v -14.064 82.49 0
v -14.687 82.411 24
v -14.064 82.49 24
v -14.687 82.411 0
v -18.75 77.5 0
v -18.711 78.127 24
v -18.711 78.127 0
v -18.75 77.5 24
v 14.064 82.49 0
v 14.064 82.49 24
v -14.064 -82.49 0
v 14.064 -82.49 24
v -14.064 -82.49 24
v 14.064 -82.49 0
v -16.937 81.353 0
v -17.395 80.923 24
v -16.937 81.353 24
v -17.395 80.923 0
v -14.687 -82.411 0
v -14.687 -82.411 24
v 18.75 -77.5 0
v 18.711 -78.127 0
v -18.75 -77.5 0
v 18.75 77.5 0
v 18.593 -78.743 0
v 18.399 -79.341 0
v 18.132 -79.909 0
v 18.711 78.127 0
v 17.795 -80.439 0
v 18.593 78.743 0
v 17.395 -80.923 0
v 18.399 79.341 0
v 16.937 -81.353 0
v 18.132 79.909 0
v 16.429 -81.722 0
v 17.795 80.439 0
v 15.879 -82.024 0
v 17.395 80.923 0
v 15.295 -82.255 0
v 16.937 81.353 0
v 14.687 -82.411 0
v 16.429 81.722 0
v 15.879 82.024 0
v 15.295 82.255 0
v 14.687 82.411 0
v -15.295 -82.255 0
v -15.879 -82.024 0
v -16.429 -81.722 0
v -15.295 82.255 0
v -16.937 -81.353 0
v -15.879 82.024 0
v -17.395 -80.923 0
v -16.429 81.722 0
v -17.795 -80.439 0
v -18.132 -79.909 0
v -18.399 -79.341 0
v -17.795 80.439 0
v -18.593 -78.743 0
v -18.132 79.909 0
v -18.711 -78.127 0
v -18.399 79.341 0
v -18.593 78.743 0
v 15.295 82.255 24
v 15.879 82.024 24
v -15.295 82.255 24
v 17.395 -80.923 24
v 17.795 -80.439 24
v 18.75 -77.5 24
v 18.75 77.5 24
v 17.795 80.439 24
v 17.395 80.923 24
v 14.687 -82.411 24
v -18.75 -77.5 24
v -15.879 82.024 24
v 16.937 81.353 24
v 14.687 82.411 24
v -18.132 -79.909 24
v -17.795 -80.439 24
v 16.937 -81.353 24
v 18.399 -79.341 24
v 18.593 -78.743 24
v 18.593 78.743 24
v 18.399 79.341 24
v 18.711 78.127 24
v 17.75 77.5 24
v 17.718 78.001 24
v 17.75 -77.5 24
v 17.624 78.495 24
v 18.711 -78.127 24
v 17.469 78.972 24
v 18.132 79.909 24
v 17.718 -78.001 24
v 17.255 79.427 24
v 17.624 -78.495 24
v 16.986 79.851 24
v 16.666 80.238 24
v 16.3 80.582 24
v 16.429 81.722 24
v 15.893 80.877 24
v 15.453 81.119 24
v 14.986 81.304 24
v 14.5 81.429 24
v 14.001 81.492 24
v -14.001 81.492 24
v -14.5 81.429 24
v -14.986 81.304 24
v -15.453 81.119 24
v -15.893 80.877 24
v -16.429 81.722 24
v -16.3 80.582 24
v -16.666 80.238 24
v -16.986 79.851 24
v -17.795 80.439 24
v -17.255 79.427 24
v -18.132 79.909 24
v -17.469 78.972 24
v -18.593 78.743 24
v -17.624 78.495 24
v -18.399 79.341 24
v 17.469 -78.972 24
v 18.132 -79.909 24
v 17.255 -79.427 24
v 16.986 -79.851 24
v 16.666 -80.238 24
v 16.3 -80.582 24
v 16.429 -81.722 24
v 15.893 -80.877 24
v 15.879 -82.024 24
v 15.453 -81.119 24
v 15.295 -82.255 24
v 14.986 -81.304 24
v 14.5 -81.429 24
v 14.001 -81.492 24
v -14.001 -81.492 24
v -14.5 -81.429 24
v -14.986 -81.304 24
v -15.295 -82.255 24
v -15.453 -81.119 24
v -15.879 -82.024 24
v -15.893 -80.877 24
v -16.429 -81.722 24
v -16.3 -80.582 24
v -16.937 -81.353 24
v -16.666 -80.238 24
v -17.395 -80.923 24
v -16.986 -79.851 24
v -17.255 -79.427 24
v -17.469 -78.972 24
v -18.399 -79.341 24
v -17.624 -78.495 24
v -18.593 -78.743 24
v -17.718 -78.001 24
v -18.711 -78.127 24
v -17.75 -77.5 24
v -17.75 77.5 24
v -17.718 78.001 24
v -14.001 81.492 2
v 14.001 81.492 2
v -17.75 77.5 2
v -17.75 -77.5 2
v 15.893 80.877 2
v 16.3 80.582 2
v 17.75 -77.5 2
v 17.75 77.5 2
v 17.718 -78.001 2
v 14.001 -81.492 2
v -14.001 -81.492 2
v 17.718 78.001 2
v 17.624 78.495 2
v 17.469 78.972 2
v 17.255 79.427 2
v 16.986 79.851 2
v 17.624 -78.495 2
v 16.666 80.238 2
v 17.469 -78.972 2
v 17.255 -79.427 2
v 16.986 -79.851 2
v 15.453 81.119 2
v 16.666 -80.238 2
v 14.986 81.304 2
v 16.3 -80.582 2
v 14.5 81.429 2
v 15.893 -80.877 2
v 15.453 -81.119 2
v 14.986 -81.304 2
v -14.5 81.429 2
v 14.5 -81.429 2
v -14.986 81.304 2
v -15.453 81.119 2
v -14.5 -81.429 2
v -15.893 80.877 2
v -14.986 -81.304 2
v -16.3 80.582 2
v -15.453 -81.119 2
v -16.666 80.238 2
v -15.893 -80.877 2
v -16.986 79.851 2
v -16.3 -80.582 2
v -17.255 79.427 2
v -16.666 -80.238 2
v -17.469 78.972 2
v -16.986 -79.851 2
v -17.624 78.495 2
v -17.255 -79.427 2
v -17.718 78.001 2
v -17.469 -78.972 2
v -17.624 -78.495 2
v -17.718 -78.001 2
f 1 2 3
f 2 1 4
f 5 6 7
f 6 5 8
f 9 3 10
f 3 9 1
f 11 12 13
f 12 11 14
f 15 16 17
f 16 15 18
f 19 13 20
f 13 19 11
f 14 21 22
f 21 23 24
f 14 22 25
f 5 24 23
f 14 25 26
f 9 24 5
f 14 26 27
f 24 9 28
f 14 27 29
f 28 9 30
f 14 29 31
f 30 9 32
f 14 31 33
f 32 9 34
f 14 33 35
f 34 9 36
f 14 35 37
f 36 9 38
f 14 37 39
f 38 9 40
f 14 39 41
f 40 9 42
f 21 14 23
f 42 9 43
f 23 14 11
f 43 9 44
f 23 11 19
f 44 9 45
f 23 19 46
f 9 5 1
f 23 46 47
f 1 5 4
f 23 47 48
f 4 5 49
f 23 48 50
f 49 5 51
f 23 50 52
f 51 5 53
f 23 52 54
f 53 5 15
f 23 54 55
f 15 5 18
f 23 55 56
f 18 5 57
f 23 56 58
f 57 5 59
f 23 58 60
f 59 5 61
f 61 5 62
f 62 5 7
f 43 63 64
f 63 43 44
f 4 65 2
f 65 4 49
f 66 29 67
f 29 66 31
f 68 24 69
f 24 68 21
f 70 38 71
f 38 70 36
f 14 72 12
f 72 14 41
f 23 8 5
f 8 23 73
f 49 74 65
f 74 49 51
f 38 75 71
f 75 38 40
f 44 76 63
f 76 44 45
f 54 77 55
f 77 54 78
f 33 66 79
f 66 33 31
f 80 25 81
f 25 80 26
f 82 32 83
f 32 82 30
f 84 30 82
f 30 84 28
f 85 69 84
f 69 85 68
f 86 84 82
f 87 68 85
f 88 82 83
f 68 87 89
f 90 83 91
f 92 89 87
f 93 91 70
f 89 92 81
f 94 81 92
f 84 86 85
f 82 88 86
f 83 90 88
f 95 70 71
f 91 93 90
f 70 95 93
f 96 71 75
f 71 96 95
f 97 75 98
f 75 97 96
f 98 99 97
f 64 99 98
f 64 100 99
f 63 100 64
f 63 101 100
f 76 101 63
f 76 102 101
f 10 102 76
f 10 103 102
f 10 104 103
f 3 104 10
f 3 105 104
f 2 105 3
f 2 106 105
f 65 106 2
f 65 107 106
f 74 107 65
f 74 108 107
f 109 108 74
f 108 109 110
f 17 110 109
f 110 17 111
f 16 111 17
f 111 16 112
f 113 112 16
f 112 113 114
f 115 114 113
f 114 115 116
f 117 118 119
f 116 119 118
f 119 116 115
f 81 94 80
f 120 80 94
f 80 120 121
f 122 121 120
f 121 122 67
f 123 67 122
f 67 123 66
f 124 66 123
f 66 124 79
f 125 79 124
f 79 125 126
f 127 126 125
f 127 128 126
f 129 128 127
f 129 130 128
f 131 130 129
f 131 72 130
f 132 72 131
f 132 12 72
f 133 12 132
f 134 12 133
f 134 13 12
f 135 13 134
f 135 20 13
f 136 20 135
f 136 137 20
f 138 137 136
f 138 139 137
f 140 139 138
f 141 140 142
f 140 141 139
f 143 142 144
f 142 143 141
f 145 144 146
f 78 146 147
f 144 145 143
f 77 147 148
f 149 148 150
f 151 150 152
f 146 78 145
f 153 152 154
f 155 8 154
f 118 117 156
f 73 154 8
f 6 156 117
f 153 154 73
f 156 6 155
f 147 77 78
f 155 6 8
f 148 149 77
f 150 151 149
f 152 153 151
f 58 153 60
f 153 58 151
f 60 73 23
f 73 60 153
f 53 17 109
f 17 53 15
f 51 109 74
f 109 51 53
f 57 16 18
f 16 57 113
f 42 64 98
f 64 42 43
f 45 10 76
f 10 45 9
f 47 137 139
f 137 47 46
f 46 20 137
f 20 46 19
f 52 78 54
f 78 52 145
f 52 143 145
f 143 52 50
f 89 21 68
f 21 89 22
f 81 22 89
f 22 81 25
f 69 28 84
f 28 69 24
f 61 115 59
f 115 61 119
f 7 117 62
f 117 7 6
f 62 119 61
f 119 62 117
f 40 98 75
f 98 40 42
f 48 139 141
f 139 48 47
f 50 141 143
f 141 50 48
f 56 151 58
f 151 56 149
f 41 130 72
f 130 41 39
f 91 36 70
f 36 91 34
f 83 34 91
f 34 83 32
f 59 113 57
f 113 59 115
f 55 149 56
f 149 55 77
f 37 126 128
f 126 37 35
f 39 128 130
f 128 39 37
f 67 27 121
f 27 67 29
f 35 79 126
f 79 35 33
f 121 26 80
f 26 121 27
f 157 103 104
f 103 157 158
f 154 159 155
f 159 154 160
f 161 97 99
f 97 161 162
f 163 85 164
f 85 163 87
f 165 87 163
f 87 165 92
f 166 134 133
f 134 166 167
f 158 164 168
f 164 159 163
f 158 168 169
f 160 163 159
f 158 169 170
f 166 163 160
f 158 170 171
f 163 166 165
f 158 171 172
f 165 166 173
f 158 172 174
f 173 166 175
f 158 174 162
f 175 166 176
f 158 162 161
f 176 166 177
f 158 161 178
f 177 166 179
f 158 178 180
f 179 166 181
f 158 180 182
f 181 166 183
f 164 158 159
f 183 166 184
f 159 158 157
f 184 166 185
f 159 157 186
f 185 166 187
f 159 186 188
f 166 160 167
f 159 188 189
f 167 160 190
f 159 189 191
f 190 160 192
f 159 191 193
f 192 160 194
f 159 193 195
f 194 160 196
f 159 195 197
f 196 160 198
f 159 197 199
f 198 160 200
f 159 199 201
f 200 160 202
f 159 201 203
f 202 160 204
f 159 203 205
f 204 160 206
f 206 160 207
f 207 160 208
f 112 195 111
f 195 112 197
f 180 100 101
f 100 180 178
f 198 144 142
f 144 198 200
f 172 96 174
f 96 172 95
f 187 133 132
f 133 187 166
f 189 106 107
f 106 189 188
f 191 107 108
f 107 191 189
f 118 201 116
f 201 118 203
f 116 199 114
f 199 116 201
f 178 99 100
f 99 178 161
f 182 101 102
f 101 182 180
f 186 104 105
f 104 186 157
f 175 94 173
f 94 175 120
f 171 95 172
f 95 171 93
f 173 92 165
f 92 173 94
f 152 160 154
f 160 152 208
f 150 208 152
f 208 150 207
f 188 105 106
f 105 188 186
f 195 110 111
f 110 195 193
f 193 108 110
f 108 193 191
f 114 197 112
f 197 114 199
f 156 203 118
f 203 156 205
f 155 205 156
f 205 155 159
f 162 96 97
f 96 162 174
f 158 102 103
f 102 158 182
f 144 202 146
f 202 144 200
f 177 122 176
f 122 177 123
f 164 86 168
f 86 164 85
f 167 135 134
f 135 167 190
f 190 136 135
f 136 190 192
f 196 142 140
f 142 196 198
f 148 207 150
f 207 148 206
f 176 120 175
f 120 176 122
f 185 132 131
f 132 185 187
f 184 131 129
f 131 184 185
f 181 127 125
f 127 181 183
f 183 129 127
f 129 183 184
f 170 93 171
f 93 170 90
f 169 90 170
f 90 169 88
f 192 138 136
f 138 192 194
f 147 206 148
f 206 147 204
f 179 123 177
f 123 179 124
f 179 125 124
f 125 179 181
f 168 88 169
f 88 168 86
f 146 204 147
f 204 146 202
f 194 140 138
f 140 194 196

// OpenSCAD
$fn = 50;


difference() {
	union() {
		hull() {
			translate(v = [-13.7500000000, 77.5000000000, 0]) {
				cylinder(h = 24, r = 5);
			}
			translate(v = [13.7500000000, 77.5000000000, 0]) {
				cylinder(h = 24, r = 5);
			}
			translate(v = [-13.7500000000, -77.5000000000, 0]) {
				cylinder(h = 24, r = 5);
			}
			translate(v = [13.7500000000, -77.5000000000, 0]) {
				cylinder(h = 24, r = 5);
			}
		}
	}
	union() {
		translate(v = [0, 0, 2]) {
			hull() {
				translate(v = [-13.7500000000, 77.5000000000, 0]) {
					cylinder(h = 22, r = 4);
				}
				translate(v = [13.7500000000, 77.5000000000, 0]) {
					cylinder(h = 22, r = 4);
				}
				translate(v = [-13.7500000000, -77.5000000000, 0]) {
					cylinder(h = 22, r = 4);
				}
				translate(v = [13.7500000000, -77.5000000000, 0]) {
					cylinder(h = 22, r = 4);
				}
			}
		}
	}
}
